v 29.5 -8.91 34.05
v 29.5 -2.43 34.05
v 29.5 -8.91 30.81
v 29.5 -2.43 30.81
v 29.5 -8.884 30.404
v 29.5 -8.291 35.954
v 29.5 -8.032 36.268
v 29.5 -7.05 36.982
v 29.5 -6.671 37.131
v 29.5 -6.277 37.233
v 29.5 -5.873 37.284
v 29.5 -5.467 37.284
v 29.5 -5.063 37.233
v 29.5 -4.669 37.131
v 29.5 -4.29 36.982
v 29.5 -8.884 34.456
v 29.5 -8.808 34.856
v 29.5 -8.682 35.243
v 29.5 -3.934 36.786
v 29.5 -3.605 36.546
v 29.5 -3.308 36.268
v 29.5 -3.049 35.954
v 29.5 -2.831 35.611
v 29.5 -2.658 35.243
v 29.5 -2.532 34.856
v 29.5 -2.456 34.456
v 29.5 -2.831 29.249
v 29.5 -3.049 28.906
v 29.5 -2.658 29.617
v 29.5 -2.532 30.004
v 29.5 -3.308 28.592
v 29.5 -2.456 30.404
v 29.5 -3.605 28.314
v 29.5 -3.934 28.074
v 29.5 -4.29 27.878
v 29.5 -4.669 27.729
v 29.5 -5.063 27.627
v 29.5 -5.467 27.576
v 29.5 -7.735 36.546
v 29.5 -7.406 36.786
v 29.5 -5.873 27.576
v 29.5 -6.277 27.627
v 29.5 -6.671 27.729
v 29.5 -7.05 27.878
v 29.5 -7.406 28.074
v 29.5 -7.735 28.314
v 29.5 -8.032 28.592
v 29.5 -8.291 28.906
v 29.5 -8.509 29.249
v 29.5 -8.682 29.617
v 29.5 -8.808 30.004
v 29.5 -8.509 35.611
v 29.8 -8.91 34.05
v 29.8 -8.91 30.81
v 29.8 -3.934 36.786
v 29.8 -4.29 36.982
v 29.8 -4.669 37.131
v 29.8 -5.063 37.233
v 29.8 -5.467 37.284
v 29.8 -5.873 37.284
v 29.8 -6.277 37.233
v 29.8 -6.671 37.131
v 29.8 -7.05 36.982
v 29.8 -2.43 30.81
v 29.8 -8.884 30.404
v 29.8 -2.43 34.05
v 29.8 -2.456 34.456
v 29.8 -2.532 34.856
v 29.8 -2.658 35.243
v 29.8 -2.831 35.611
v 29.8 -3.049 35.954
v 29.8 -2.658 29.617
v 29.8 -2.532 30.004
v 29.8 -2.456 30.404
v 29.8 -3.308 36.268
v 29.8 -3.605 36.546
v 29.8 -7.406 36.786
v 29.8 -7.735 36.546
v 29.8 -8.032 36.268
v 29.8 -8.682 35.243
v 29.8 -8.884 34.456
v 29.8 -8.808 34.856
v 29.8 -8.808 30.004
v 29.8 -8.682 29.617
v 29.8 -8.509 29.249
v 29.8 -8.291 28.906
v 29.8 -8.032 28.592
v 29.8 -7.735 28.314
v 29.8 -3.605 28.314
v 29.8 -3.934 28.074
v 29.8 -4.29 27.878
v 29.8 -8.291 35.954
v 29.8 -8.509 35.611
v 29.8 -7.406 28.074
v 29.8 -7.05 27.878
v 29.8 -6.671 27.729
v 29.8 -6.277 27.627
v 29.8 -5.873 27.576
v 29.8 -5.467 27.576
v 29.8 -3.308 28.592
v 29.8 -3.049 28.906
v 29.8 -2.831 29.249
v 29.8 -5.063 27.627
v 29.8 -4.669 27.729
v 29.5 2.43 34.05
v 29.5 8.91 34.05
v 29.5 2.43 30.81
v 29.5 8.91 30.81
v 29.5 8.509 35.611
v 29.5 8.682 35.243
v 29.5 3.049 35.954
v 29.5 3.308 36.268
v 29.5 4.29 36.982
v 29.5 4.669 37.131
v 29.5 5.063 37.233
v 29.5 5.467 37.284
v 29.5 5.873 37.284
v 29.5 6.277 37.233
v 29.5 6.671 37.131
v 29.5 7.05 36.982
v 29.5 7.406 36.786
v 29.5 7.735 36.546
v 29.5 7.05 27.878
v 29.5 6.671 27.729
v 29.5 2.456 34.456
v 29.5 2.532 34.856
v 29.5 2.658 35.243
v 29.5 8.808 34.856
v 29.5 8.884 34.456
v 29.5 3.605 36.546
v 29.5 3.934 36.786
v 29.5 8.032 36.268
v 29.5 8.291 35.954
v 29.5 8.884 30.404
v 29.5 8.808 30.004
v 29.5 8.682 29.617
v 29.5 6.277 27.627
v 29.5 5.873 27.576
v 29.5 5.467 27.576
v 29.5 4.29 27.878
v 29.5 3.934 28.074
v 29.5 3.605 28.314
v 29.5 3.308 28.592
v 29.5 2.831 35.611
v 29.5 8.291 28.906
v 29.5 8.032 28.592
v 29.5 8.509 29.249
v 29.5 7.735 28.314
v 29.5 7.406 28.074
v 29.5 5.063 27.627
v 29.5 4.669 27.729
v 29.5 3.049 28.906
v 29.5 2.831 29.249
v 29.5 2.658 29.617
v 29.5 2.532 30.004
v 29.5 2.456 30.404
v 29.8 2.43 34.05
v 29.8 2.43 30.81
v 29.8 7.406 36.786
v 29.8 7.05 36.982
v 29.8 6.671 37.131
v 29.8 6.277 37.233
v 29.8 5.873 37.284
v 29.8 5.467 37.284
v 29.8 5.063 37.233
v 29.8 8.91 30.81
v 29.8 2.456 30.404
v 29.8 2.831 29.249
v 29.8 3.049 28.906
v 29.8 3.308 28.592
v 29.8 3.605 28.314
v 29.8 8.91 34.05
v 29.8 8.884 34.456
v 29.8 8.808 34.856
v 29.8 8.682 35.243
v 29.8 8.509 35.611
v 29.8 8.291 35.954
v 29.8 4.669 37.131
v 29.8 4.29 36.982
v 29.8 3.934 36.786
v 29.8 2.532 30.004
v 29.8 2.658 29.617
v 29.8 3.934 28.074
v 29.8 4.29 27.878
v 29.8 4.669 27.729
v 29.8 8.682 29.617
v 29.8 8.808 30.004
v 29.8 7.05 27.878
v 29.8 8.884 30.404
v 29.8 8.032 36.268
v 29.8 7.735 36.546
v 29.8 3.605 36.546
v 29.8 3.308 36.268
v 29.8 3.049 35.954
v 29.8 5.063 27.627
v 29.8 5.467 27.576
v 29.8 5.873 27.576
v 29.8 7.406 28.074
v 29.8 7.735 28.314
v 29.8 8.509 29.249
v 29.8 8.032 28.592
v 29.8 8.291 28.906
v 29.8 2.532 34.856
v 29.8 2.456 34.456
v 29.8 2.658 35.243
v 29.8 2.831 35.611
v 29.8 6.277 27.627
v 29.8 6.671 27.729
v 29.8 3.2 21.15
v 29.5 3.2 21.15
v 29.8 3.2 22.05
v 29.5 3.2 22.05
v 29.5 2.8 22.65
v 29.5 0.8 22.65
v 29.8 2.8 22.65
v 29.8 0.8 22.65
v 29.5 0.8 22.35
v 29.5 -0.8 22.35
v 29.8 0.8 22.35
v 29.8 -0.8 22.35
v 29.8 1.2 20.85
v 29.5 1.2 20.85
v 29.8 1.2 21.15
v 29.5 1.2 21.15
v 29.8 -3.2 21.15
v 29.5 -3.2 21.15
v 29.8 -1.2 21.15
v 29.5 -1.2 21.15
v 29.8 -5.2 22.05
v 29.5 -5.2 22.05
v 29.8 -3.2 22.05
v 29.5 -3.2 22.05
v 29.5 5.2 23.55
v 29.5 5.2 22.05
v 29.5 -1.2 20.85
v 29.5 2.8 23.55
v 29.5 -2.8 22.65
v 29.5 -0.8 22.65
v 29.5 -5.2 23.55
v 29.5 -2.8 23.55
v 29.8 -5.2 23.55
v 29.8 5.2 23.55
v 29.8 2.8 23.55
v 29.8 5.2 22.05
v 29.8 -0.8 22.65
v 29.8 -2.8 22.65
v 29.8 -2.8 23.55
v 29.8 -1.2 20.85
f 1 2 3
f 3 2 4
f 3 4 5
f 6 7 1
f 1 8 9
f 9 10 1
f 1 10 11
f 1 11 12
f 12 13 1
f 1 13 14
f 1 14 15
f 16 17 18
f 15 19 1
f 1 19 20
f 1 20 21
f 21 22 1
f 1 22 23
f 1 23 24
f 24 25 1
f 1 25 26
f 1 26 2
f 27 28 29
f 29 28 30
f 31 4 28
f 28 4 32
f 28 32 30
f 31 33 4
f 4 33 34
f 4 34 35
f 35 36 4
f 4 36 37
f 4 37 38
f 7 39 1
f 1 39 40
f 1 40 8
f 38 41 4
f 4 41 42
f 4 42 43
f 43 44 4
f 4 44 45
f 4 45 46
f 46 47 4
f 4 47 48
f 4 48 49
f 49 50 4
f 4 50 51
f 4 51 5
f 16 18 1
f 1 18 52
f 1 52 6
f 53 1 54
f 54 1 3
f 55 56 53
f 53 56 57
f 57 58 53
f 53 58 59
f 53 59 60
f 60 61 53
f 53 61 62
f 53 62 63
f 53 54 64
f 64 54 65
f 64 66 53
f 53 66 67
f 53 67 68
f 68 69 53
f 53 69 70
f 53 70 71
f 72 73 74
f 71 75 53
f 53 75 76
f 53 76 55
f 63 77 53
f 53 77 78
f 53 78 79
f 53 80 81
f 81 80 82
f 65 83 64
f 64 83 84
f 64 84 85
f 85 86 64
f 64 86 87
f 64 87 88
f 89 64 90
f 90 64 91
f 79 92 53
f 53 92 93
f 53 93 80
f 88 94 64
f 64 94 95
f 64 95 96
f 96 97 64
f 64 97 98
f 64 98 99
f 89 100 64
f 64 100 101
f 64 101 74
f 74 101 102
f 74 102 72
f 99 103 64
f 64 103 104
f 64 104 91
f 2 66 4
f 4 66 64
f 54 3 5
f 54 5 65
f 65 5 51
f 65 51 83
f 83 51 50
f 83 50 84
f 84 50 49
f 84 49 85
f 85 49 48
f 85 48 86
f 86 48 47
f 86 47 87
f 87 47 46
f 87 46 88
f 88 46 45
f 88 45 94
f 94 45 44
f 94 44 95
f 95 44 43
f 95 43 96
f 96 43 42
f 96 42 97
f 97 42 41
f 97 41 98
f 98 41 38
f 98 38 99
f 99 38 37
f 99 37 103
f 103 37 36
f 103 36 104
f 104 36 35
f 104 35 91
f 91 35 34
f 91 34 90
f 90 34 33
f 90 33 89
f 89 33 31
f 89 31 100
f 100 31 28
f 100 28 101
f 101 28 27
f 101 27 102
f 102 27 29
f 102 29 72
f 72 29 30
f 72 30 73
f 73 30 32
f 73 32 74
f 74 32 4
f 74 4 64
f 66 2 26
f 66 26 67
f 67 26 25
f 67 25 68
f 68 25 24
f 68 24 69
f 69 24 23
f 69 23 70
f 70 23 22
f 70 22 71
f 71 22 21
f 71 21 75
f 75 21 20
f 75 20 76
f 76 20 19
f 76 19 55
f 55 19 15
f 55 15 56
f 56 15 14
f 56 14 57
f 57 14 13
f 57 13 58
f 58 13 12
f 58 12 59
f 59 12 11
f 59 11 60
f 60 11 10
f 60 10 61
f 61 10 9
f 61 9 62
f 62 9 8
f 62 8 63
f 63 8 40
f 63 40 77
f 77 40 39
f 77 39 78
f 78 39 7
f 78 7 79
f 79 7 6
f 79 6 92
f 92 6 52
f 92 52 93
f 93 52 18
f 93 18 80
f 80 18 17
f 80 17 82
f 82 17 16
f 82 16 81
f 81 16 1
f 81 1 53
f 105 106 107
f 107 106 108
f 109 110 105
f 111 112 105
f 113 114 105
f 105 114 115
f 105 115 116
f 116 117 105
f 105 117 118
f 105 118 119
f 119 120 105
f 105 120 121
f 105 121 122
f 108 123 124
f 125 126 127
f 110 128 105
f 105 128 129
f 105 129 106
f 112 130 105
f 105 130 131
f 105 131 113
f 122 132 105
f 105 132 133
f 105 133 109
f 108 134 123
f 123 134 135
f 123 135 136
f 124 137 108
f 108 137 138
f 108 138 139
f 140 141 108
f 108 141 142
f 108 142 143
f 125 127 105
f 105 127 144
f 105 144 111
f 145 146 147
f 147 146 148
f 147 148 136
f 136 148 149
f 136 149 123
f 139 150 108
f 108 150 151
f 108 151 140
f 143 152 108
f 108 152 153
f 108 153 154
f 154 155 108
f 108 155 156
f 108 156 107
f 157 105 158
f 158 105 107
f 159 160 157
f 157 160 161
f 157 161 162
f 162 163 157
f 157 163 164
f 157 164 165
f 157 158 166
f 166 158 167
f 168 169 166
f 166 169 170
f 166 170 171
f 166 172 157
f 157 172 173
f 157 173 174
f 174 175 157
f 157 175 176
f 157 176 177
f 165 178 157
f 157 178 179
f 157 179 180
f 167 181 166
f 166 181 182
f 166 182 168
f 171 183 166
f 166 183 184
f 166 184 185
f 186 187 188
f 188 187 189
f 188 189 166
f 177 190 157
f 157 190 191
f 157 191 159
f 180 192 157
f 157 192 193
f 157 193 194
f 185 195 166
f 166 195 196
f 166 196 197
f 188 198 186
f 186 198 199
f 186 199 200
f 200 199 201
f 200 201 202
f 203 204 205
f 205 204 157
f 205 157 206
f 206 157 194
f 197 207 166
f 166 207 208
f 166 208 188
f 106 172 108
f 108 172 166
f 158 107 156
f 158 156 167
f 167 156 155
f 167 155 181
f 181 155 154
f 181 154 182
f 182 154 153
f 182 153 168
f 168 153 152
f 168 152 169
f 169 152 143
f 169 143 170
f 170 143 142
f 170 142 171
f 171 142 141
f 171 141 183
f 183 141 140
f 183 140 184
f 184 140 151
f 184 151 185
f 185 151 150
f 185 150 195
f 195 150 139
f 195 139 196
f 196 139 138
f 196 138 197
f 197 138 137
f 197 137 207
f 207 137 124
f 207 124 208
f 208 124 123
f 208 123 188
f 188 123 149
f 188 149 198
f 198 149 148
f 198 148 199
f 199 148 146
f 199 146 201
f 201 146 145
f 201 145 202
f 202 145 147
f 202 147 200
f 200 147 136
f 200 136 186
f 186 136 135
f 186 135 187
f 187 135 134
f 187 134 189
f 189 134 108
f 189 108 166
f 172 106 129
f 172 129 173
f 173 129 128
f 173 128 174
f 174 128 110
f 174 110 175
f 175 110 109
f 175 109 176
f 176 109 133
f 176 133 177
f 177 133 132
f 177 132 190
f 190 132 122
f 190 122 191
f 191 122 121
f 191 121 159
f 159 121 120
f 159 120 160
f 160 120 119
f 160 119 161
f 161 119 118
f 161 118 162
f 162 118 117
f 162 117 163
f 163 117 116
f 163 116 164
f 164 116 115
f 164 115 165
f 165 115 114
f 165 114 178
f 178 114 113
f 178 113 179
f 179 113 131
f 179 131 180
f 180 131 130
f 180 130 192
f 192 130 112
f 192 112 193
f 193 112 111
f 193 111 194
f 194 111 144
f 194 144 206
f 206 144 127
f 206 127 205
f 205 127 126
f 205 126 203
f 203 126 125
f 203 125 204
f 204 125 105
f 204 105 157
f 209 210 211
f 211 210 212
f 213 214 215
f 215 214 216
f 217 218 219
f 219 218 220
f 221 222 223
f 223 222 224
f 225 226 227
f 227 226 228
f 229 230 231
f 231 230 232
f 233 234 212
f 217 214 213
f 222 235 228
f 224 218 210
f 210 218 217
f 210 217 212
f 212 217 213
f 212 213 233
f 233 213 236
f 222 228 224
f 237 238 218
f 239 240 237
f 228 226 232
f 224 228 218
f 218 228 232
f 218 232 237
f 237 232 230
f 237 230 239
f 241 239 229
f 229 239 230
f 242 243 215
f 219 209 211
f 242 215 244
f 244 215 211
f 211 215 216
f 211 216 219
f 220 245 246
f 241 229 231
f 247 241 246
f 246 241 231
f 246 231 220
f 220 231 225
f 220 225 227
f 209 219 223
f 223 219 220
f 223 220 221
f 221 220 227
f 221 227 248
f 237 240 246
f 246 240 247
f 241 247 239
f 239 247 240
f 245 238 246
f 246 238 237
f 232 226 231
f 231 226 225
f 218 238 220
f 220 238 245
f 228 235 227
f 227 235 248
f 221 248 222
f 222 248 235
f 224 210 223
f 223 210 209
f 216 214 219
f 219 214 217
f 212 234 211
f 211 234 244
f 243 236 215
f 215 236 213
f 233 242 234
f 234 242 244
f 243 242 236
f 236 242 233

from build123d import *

# Parameters (mm, degrees)
S_BOX1_W      = 0.3
S_BOX1_H      = 6.48
BOSS_1_DEPTH  = 3.24
S_CYL2_R      = 3.24
BOSS_2_DEPTH  = 0.3
S_CYL3_R      = 3.24
BOSS_3_DEPTH  = 0.3
S_BOX4_W      = 0.3
S_BOX4_H      = 6.48
BOSS_4_DEPTH  = 3.24
S_CYL5_R      = 3.24
BOSS_5_DEPTH  = 0.3
S_CYL6_R      = 3.24
BOSS_6_DEPTH  = 0.3
S_BOX7_W      = 0.3
S_BOX7_H      = 2.4
BOSS_7_DEPTH  = 1.5
S_BOX8_W      = 0.3
S_BOX8_H      = 2.4
BOSS_8_DEPTH  = 1.5
S_BOX9_W      = 0.3
S_BOX9_H      = 2.4
BOSS_9_DEPTH  = 1.5
S_BOX10_W     = 0.3
S_BOX10_H     = 2.4
BOSS_10_DEPTH = 1.5
S_BOX11_W     = 0.3
S_BOX11_H     = 2.4
BOSS_11_DEPTH = 1.5


with BuildPart() as part:
    # S_box1 → Boss_1 (new body)
    with BuildSketch(Plane.XY.offset(30.81)):
        with Locations((29.65, 5.67)):
            Rectangle(S_BOX1_W, S_BOX1_H)
    extrude(amount=BOSS_1_DEPTH)

    # S_cyl2 → Boss_2 (add)
    with BuildSketch(Plane(origin=(29.5, 0, 0), x_dir=(0, 0, -1), z_dir=(1, 0, 0))):
        with Locations((-30.81, 5.67)):
            Circle(S_CYL2_R)
    extrude(amount=BOSS_2_DEPTH)

    # S_cyl3 → Boss_3 (add)
    with BuildSketch(Plane(origin=(29.5, 0, 0), x_dir=(0, 0, -1), z_dir=(1, 0, 0))):
        with Locations((-34.05, 5.67)):
            Circle(S_CYL3_R)
    extrude(amount=BOSS_3_DEPTH)


with BuildPart() as body_2:
    # S_box4 → Boss_4 (new body)
    with BuildSketch(Plane.XY.offset(30.81)):
        with Locations((29.65, -5.67)):
            Rectangle(S_BOX4_W, S_BOX4_H)
    extrude(amount=BOSS_4_DEPTH)

    # S_cyl5 → Boss_5 (add)
    with BuildSketch(Plane(origin=(29.5, 0, 0), x_dir=(0, 0, -1), z_dir=(1, 0, 0))):
        with Locations((-30.81, -5.67)):
            Circle(S_CYL5_R)
    extrude(amount=BOSS_5_DEPTH)

    # S_cyl6 → Boss_6 (add)
    with BuildSketch(Plane(origin=(29.5, 0, 0), x_dir=(0, 0, -1), z_dir=(1, 0, 0))):
        with Locations((-34.05, -5.67)):
            Circle(S_CYL6_R)
    extrude(amount=BOSS_6_DEPTH)


with BuildPart() as body_3:
    # S_box7 → Boss_7 (new body)
    with BuildSketch(Plane.XY.offset(22.05)):
        with Locations((29.65, -4)):
            Rectangle(S_BOX7_W, S_BOX7_H)
    extrude(amount=BOSS_7_DEPTH)

    # S_box8 → Boss_8 (add)
    with BuildSketch(Plane.XY.offset(21.15)):
        with Locations((29.65, -2)):
            Rectangle(S_BOX8_W, S_BOX8_H)
    extrude(amount=BOSS_8_DEPTH)

    # S_box9 → Boss_9 (add)
    with BuildSketch(Plane.XY.offset(20.85)):
        with Locations((29.65, 0)):
            Rectangle(S_BOX9_W, S_BOX9_H)
    extrude(amount=BOSS_9_DEPTH)

    # S_box10 → Boss_10 (add)
    with BuildSketch(Plane.XY.offset(21.15)):
        with Locations((29.65, 2)):
            Rectangle(S_BOX10_W, S_BOX10_H)
    extrude(amount=BOSS_10_DEPTH)

    # S_box11 → Boss_11 (add)
    with BuildSketch(Plane.XY.offset(22.05)):
        with Locations((29.65, 4)):
            Rectangle(S_BOX11_W, S_BOX11_H)
    extrude(amount=BOSS_11_DEPTH)


solid = Compound([part.part, body_2.part, body_3.part])
